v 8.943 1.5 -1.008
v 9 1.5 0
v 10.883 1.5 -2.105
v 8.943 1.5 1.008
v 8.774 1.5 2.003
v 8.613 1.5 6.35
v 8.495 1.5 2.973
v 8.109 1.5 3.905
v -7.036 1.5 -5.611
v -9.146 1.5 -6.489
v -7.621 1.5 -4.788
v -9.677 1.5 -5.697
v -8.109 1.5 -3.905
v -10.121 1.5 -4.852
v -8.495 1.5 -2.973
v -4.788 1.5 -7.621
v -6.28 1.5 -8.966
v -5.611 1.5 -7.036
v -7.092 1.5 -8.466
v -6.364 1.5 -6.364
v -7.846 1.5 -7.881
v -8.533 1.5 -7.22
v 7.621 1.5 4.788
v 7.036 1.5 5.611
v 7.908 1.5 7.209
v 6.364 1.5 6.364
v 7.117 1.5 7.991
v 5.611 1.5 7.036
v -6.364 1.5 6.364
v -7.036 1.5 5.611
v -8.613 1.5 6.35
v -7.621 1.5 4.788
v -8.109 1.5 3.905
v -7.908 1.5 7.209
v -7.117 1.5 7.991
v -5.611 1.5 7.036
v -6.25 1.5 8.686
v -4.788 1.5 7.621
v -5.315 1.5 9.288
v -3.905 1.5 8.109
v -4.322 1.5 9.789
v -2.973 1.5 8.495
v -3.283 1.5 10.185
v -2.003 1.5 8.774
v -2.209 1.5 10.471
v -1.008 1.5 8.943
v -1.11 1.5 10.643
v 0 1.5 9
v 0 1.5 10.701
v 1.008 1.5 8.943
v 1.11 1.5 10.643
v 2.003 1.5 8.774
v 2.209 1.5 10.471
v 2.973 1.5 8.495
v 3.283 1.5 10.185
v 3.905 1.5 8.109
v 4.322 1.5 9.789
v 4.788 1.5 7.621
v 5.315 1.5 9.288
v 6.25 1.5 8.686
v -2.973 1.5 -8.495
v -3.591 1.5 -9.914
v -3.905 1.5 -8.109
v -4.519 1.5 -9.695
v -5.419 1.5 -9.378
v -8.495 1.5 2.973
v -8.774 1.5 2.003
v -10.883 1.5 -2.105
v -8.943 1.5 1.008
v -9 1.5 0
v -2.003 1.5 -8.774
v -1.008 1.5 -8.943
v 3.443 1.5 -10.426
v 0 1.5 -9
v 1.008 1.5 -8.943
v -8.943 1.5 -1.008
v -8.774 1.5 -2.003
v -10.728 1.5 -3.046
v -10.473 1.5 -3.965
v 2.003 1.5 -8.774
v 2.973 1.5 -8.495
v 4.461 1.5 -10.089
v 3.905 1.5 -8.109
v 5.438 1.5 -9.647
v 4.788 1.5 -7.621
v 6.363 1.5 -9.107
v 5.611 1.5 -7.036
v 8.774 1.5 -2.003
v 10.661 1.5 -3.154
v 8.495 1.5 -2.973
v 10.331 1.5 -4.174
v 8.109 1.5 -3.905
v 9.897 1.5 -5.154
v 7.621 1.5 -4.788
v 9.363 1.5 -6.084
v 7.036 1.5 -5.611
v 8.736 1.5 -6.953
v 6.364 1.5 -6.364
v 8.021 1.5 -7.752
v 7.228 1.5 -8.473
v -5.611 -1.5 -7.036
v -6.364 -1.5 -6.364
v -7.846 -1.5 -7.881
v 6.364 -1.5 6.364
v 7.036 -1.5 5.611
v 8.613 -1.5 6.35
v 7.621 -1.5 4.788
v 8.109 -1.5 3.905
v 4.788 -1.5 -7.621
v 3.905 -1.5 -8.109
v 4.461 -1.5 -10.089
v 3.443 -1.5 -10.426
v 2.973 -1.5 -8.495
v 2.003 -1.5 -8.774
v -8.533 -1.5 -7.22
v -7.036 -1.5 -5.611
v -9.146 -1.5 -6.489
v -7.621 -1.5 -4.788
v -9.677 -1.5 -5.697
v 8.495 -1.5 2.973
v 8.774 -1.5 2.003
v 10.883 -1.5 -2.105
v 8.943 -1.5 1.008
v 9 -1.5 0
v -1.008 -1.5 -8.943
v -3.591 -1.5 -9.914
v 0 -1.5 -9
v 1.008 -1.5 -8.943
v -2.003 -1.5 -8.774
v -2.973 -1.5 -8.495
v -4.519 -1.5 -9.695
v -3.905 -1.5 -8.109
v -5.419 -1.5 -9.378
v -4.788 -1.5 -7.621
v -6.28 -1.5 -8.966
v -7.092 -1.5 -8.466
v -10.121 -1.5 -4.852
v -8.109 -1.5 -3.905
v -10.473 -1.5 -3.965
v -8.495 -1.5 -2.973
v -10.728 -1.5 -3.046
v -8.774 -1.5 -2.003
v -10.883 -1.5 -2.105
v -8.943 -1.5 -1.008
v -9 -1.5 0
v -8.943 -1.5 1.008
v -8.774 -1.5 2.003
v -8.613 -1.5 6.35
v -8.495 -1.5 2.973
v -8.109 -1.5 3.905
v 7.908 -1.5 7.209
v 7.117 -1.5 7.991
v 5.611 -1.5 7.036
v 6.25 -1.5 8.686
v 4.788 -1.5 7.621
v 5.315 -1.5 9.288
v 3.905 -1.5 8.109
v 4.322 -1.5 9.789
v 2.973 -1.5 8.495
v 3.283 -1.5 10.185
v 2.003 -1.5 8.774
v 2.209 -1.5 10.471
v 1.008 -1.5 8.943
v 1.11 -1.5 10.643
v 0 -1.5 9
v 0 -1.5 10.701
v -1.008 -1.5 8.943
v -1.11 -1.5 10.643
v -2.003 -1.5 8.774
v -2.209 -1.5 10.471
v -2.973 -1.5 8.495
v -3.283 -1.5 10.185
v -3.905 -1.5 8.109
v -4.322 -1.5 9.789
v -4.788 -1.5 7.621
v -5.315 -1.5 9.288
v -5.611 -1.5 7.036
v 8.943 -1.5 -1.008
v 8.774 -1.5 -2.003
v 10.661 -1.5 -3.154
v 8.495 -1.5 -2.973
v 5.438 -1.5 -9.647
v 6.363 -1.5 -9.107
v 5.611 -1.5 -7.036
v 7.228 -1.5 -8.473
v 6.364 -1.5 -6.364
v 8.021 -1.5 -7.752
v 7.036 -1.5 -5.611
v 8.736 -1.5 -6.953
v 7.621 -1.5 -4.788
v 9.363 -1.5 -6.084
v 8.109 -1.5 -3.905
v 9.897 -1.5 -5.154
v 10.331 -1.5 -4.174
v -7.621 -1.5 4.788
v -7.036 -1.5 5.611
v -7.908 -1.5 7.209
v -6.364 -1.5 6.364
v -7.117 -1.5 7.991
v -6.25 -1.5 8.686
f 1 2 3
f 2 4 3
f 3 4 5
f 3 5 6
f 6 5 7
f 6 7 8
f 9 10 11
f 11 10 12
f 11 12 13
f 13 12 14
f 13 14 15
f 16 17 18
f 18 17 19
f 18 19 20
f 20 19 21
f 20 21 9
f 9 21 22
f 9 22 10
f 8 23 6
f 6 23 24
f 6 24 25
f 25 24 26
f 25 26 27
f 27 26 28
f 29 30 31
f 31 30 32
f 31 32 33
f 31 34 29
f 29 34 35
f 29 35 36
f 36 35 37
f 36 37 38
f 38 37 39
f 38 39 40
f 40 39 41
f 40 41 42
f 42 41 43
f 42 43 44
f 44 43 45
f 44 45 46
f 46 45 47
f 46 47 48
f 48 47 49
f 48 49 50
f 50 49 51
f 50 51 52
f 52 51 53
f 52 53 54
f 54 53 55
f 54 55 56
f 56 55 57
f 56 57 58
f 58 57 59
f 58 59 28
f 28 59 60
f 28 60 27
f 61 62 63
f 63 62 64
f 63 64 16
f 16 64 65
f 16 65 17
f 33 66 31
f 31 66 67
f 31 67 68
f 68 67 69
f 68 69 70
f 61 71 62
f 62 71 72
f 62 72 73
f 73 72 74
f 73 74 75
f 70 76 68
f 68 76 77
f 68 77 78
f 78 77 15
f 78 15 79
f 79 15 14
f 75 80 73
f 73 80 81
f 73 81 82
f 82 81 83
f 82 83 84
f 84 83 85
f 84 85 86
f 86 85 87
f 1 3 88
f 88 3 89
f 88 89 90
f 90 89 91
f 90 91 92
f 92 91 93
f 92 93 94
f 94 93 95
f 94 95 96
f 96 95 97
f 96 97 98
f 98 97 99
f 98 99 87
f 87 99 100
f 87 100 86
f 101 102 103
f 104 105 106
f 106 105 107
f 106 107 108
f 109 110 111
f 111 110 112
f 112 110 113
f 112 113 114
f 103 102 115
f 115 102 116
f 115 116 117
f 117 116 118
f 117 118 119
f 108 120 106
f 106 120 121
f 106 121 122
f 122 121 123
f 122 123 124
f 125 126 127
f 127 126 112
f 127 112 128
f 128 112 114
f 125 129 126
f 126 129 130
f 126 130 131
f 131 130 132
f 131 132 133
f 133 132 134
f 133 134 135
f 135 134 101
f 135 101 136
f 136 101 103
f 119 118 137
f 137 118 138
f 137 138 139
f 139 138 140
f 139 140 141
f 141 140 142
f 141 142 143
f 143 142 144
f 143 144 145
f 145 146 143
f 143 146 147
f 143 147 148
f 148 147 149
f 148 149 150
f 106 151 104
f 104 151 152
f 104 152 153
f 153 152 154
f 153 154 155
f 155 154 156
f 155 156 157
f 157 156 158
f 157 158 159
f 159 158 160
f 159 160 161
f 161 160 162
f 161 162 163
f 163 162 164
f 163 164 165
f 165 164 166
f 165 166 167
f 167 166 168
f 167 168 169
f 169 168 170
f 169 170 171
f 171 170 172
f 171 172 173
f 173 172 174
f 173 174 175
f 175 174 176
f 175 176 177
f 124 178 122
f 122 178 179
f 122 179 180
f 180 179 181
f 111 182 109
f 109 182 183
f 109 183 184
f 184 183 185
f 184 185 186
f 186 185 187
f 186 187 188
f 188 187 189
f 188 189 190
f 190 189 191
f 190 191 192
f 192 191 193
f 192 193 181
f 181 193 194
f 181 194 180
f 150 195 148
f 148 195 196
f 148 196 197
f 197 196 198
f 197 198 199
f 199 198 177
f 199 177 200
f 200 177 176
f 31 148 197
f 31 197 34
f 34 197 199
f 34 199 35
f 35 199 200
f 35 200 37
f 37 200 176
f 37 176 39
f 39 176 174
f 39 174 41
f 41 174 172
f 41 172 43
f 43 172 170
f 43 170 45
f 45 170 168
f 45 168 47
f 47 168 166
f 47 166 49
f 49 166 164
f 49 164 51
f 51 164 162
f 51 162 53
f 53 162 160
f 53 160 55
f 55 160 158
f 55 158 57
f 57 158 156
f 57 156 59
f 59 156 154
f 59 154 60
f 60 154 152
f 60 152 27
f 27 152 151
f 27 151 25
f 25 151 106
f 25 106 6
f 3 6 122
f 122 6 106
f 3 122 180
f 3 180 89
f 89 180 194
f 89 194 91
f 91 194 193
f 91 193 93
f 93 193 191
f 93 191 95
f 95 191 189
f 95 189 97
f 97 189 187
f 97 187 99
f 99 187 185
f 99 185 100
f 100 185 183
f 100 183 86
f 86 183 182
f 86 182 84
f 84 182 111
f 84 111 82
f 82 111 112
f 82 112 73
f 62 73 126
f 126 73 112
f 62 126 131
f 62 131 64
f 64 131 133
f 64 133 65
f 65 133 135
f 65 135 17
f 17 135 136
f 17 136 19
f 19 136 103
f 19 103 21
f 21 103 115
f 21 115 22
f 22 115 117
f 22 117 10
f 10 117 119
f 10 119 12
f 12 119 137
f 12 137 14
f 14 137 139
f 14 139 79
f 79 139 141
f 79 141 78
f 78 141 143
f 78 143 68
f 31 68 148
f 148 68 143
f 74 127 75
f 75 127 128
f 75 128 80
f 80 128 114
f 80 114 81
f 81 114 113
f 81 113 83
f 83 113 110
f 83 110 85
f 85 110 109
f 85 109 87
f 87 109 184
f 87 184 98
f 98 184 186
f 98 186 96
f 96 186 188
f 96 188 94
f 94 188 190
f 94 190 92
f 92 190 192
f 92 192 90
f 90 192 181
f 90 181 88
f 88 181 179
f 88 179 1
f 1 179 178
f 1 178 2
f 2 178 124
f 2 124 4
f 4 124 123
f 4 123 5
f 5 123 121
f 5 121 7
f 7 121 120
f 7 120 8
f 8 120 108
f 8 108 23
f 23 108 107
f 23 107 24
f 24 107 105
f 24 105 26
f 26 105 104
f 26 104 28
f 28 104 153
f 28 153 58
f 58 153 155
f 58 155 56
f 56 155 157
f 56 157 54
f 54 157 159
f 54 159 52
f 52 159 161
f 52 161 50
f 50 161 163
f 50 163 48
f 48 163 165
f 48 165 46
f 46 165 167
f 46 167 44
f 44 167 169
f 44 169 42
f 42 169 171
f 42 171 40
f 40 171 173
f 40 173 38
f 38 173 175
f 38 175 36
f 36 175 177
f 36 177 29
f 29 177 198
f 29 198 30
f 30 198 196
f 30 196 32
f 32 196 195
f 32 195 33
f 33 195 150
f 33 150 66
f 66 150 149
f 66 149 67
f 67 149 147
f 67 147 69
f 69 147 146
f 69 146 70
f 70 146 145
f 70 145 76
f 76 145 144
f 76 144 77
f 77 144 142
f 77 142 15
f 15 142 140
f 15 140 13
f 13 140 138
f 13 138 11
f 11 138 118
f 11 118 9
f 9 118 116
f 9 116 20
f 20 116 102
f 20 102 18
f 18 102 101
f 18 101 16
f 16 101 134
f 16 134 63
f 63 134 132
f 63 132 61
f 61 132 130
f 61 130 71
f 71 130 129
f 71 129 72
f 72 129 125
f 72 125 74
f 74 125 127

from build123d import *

# Parameters (mm, degrees)
SKETCH1_R           = 9
BOSS_EXTRUDE1_DEPTH = 1.5


with BuildPart() as part:
    # Sketch1 → Boss-Extrude1 (new, symmetric)
    with BuildSketch(Plane(origin=(0, 0, 0), x_dir=(1, 0, 0), z_dir=(0, 1, 0))):
        with BuildLine():
            Line((-8.613284174, -6.35), (-10.883410628, 2.104994632))
            ThreePointArc((-10.883410628, 2.104994632), (-8.533007766, 7.219663427), (-3.590944982, 9.91414778))
            Line((-3.590944982, 9.91414778), (3.443136374, 10.426476807))
            ThreePointArc((3.443136374, 10.426476807), (8.389040028, 7.361699028), (10.883410628, 2.104994632))
            Line((10.883410628, 2.104994632), (8.613284174, -6.35))
            ThreePointArc((8.613284174, -6.35), (0, -10.700988938), (-8.613284174, -6.35))
        make_face()
        with Locations(Location((0, 0, 0), (0, 0, 270))):
            Circle(SKETCH1_R, mode=Mode.SUBTRACT)
    extrude(amount=BOSS_EXTRUDE1_DEPTH, both=True)


solid = part.part
